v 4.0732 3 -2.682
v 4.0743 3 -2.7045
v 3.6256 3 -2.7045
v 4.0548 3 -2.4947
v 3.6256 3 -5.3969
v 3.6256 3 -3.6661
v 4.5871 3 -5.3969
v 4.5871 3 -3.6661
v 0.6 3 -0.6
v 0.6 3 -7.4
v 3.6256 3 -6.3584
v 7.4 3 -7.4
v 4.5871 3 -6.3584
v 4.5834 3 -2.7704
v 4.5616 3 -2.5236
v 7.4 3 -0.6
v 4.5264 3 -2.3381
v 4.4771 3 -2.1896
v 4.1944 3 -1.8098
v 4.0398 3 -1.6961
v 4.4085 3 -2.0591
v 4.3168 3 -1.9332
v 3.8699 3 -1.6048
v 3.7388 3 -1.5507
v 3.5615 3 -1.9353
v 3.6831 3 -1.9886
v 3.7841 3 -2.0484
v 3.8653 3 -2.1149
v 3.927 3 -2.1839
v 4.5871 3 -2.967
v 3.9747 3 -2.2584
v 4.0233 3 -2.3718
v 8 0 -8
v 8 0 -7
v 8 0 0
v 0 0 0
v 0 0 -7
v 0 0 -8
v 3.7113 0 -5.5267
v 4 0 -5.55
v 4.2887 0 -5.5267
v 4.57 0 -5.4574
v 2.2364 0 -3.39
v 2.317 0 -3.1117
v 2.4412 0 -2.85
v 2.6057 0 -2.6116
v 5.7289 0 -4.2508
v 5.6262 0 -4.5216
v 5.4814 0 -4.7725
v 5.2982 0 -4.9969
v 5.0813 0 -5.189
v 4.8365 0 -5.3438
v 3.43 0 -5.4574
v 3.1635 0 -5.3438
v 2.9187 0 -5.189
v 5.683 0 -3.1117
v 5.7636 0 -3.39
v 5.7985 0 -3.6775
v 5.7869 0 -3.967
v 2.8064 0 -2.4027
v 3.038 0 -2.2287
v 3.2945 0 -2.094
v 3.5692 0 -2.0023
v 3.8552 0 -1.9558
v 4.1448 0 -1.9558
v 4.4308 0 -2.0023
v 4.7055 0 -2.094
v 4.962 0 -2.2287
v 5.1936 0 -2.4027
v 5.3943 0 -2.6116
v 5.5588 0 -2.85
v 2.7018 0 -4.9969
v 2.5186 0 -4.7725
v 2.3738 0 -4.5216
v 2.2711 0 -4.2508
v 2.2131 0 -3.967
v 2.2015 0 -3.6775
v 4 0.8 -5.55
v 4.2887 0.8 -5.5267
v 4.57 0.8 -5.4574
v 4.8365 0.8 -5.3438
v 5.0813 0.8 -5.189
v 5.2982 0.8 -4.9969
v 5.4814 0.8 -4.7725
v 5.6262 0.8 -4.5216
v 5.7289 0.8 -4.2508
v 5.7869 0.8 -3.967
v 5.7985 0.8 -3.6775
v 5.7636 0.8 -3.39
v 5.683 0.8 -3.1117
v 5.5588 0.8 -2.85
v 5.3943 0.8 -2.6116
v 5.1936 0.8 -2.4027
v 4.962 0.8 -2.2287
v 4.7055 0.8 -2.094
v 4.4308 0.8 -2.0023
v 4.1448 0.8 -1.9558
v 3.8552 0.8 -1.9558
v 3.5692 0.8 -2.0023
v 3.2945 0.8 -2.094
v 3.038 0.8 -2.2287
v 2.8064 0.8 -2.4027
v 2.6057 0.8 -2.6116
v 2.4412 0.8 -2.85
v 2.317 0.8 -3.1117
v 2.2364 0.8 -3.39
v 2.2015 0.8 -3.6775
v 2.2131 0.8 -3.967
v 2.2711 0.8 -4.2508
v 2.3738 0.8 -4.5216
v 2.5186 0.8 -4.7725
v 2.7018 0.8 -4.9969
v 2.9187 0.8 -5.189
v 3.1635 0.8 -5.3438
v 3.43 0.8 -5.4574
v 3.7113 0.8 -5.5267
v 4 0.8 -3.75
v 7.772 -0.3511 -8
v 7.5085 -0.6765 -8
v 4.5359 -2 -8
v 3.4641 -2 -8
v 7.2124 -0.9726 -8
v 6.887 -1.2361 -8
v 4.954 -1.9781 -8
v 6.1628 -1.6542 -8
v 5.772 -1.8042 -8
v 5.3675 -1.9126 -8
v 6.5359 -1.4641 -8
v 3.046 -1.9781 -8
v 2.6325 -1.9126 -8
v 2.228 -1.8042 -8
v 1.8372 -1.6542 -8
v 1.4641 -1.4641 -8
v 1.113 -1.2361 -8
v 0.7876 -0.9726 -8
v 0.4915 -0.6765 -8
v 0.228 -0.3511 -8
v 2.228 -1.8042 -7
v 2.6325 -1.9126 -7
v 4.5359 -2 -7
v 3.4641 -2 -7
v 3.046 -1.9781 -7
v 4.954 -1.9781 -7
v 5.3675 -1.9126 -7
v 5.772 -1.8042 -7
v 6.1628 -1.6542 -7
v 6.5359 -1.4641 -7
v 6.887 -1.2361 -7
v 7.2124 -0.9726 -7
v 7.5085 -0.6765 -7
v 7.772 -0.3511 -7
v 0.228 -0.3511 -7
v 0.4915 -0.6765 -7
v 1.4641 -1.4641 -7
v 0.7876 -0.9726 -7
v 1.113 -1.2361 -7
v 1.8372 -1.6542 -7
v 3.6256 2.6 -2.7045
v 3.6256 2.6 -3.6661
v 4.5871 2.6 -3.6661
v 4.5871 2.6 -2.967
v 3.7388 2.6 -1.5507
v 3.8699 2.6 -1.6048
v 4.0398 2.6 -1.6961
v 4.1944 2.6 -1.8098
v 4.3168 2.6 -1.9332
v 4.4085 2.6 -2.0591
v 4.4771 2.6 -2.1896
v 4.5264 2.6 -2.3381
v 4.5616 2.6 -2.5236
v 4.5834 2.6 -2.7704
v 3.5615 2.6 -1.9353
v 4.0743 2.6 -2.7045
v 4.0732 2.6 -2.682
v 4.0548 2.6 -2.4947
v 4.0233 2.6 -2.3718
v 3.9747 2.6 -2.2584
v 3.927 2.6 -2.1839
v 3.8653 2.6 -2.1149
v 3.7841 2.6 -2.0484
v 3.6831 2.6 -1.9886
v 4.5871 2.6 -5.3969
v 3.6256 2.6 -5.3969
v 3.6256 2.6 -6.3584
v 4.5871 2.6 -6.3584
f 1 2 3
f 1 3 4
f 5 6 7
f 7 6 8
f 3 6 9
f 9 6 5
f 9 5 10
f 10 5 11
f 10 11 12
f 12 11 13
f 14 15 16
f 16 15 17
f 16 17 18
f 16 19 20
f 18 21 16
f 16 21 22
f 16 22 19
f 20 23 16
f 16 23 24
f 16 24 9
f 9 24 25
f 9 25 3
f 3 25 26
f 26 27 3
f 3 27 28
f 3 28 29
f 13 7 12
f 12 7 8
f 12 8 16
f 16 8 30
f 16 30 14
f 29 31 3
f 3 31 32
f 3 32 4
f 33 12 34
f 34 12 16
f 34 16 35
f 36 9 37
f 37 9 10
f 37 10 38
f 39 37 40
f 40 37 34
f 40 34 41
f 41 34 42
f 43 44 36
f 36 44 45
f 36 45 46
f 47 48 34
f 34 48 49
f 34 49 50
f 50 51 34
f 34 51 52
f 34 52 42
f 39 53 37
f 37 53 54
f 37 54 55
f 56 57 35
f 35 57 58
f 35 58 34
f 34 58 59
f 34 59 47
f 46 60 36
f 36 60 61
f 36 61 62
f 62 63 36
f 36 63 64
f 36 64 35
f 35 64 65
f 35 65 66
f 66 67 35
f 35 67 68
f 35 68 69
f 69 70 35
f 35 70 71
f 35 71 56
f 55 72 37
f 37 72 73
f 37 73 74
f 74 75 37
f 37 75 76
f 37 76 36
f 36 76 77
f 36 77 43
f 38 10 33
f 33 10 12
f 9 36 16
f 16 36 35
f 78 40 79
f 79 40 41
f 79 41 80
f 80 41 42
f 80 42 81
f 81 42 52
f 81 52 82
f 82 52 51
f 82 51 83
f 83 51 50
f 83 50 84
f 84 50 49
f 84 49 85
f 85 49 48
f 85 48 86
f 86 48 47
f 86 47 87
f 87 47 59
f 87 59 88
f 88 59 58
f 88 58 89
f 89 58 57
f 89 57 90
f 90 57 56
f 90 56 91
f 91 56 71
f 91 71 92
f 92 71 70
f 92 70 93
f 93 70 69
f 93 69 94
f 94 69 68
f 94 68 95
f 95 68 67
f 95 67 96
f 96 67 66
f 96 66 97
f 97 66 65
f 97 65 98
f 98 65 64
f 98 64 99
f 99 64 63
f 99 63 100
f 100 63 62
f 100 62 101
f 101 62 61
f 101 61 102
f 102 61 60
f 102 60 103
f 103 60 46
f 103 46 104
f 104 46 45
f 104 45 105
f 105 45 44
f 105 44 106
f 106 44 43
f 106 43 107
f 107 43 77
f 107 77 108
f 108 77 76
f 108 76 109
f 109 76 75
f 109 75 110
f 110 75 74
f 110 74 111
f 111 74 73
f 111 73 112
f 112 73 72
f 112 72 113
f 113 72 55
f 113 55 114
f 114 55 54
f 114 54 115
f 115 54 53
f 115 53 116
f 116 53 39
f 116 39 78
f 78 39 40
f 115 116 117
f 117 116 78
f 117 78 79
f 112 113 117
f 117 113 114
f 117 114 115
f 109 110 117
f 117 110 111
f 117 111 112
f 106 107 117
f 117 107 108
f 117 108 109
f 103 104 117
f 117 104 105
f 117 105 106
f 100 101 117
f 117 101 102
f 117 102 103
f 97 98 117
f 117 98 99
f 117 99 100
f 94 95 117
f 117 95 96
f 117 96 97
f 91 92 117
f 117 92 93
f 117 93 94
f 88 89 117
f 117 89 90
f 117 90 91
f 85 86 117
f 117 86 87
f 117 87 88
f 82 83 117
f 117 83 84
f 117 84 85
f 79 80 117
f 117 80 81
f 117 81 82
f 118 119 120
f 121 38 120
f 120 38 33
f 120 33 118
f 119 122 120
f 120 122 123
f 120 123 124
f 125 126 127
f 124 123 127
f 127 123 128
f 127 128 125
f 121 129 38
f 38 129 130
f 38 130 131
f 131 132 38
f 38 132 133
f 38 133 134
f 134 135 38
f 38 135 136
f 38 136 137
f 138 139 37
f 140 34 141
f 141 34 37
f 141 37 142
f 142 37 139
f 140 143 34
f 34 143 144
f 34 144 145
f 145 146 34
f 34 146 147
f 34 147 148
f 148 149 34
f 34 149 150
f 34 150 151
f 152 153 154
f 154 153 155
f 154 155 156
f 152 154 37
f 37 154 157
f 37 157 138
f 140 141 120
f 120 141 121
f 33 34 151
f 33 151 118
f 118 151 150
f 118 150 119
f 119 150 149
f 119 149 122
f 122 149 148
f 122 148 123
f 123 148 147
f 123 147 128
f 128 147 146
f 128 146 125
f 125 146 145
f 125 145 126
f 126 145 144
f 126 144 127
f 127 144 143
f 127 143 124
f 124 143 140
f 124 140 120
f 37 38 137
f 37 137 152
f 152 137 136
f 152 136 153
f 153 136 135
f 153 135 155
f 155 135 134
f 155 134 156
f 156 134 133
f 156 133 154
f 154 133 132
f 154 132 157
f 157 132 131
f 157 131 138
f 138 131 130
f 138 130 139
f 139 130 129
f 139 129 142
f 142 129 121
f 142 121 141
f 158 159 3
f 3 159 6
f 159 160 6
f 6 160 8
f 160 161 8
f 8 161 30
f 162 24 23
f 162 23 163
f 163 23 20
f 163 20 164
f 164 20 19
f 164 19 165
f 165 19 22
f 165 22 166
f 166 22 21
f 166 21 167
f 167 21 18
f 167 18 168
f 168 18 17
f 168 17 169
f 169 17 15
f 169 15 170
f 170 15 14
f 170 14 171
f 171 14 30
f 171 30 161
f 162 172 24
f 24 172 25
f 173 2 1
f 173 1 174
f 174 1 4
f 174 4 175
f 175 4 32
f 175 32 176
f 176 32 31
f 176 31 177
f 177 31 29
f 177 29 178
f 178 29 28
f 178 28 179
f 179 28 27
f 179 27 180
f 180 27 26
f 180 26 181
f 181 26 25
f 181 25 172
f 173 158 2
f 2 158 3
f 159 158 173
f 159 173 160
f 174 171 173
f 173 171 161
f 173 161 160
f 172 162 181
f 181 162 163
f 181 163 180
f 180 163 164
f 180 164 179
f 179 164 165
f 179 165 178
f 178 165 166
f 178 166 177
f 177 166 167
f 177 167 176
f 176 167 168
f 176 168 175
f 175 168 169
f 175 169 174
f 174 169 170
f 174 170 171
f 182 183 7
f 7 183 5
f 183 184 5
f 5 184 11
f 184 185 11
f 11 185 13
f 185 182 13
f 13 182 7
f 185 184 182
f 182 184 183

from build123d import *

# Parameters (mm, degrees)
SKETCH1_W               = 8
SKETCH1_H               = 8
BOSS_EXTRUDE1_DEPTH     = 3
CUT_EXTRUDE1_DEPTH      = 12.704699911
CUT_EXTRUDE1_DEPTH_BACK = 12.704699911
CUT_EXTRUDE2_DEPTH      = 11
SKETCH4_R               = 1.8
CUT_EXTRUDE3_DEPTH      = 0.8
SKETCH5_W               = 8
SKETCH5_H               = 1
BOSS_EXTRUDE2_DEPTH     = 2
FILLET1_R               = 4
SKETCH6_W               = 0.961538461
SKETCH6_H               = 0.961538462
CUT_EXTRUDE4_DEPTH      = 0.4


with BuildPart() as part:
    # Sketch1 → Boss-Extrude1 (new body)
    with BuildSketch(Plane(origin=(0, 0, 0), x_dir=(1, 0, 0), z_dir=(0, 1, 0))):
        with Locations((4, 4)):
            Rectangle(SKETCH1_W, SKETCH1_H)
    extrude(amount=BOSS_EXTRUDE1_DEPTH)

    # Sketch2 → Cut-Extrude1 (cut, two sides: drawn at the far end of the back side and taken through both)
    with BuildSketch(Plane.XY.offset(-CUT_EXTRUDE1_DEPTH_BACK)):
        Polygon((0, 0), (0.6, 3), (0, 3), align=None)
        Polygon((8, 0), (7.4, 3), (8, 3), align=None)
    extrude(amount=CUT_EXTRUDE1_DEPTH + CUT_EXTRUDE1_DEPTH_BACK, mode=Mode.SUBTRACT)

    # Sketch3 → Cut-Extrude2 (cut)
    with BuildSketch(Plane(origin=(0, 0, 0), x_dir=(0, 0, -1), z_dir=(1, 0, 0))):
        Polygon((0, 0), (0.6, 3), (0, 3), align=None)
        Polygon((8, 3), (7.4, 3), (8, 0), align=None)
    extrude(amount=CUT_EXTRUDE2_DEPTH, mode=Mode.SUBTRACT)

    # Sketch4 → Cut-Extrude3 (cut)
    with BuildSketch(Plane.XZ):
        with Locations(Location((4, -3.75, 0), (0, 0, 270))):
            Circle(SKETCH4_R)
    extrude(amount=-CUT_EXTRUDE3_DEPTH, mode=Mode.SUBTRACT)

    # Sketch5 → Boss-Extrude2 (add)
    with BuildSketch(Plane.XZ):
        with Locations((4, -7.5)):
            Rectangle(SKETCH5_W, SKETCH5_H)
    extrude(amount=BOSS_EXTRUDE2_DEPTH)

    # Fillet1
    # the kernel refuses this fillet: 4 mm, written as the material it takes off along each edge
    with BuildSketch(Plane(origin=(8, -2, -16.660254038), x_dir=(0, 1, 0), z_dir=(0, 0, 1)), Plane(origin=(0, -2, 1.660254038), x_dir=(0, 1, 0), z_dir=(0, 0, -1))) as fillet1_piece_1:
        with BuildLine():
            CenterArc((4, 3.464101615), FILLET1_R, 180, 60)
            Line((0, 3.464101615), (-0.08, 3.464101615))
            Line((-0.08, 3.464101615), (-0.08, 0))
            Line((-0.08, 0), (0, -0.08))
            ThreePointArc((0, -0.08), (1, -0.08), (1.96, -0.069282032))
            Line((1.96, -0.069282032), (2, 0))
        make_face()
    extrude(amount=18.320508076, mode=Mode.SUBTRACT)

    # Sketch6 → Cut-Extrude4 (cut)
    with BuildSketch(Plane(origin=(0, 3, 0), x_dir=(1, 0, 0), z_dir=(0, 1, 0))):
        with Locations((4.106375193, 5.877622732)):
            Rectangle(SKETCH6_W, SKETCH6_H)
        with BuildLine():
            Line((3.625605963, 3.666084271), (4.587144424, 3.666084271))
            Line((4.587144424, 3.666084271), (4.587144424, 2.966965681))
            add(Edge.make_bspline(
                [(4.587144424, 2.966965681), (4.586700802, 2.899821455), (4.585863185, 2.773044347), (4.571180714, 2.594207821), (4.550779556, 2.437158718), (4.518324342, 2.299878361), (4.47486997, 2.175902827), (4.413432502, 2.062461013), (4.337876173, 1.953901165), (4.245458326, 1.85350819), (4.139144335, 1.760654771), (4.017702284, 1.679908688), (3.88401418, 1.607967915), (3.787969656, 1.570094118), (3.738787052, 1.550699655)],
                knots=[0, 0, 0, 0, 1.347156832, 2.543608823, 3.599300285, 4.522475688, 5.370350604, 6.227678973, 7.103274953, 8.018757603, 8.959280198, 9.929437417, 10.939703653, 12, 12, 12, 12], degree=3))
            Line((3.738787052, 1.550699655), (3.561503399, 1.93531504))
            add(Edge.make_bspline(
                [(3.561503399, 1.93531504), (3.604439047, 1.952873279), (3.686527672, 1.986442858), (3.795938691, 2.052543314), (3.885105421, 2.129792439), (3.955780801, 2.218165676), (4.006656804, 2.32038588), (4.045456087, 2.435104657), (4.0674697, 2.56519407), (4.07197182, 2.656725854), (4.074323911, 2.704545809)],
                knots=[0, 0, 0, 0, 1.115416734, 2.132564161, 3.06091458, 3.941973359, 4.836922823, 5.794989041, 6.848011894, 8, 8, 8, 8], degree=3))
            Line((4.074323911, 2.704545809), (3.625605963, 2.704545809))
            Line((3.625605963, 2.704545809), (3.625605963, 3.666084271))
        make_face()
    extrude(amount=-CUT_EXTRUDE4_DEPTH, mode=Mode.SUBTRACT)


solid = part.part
